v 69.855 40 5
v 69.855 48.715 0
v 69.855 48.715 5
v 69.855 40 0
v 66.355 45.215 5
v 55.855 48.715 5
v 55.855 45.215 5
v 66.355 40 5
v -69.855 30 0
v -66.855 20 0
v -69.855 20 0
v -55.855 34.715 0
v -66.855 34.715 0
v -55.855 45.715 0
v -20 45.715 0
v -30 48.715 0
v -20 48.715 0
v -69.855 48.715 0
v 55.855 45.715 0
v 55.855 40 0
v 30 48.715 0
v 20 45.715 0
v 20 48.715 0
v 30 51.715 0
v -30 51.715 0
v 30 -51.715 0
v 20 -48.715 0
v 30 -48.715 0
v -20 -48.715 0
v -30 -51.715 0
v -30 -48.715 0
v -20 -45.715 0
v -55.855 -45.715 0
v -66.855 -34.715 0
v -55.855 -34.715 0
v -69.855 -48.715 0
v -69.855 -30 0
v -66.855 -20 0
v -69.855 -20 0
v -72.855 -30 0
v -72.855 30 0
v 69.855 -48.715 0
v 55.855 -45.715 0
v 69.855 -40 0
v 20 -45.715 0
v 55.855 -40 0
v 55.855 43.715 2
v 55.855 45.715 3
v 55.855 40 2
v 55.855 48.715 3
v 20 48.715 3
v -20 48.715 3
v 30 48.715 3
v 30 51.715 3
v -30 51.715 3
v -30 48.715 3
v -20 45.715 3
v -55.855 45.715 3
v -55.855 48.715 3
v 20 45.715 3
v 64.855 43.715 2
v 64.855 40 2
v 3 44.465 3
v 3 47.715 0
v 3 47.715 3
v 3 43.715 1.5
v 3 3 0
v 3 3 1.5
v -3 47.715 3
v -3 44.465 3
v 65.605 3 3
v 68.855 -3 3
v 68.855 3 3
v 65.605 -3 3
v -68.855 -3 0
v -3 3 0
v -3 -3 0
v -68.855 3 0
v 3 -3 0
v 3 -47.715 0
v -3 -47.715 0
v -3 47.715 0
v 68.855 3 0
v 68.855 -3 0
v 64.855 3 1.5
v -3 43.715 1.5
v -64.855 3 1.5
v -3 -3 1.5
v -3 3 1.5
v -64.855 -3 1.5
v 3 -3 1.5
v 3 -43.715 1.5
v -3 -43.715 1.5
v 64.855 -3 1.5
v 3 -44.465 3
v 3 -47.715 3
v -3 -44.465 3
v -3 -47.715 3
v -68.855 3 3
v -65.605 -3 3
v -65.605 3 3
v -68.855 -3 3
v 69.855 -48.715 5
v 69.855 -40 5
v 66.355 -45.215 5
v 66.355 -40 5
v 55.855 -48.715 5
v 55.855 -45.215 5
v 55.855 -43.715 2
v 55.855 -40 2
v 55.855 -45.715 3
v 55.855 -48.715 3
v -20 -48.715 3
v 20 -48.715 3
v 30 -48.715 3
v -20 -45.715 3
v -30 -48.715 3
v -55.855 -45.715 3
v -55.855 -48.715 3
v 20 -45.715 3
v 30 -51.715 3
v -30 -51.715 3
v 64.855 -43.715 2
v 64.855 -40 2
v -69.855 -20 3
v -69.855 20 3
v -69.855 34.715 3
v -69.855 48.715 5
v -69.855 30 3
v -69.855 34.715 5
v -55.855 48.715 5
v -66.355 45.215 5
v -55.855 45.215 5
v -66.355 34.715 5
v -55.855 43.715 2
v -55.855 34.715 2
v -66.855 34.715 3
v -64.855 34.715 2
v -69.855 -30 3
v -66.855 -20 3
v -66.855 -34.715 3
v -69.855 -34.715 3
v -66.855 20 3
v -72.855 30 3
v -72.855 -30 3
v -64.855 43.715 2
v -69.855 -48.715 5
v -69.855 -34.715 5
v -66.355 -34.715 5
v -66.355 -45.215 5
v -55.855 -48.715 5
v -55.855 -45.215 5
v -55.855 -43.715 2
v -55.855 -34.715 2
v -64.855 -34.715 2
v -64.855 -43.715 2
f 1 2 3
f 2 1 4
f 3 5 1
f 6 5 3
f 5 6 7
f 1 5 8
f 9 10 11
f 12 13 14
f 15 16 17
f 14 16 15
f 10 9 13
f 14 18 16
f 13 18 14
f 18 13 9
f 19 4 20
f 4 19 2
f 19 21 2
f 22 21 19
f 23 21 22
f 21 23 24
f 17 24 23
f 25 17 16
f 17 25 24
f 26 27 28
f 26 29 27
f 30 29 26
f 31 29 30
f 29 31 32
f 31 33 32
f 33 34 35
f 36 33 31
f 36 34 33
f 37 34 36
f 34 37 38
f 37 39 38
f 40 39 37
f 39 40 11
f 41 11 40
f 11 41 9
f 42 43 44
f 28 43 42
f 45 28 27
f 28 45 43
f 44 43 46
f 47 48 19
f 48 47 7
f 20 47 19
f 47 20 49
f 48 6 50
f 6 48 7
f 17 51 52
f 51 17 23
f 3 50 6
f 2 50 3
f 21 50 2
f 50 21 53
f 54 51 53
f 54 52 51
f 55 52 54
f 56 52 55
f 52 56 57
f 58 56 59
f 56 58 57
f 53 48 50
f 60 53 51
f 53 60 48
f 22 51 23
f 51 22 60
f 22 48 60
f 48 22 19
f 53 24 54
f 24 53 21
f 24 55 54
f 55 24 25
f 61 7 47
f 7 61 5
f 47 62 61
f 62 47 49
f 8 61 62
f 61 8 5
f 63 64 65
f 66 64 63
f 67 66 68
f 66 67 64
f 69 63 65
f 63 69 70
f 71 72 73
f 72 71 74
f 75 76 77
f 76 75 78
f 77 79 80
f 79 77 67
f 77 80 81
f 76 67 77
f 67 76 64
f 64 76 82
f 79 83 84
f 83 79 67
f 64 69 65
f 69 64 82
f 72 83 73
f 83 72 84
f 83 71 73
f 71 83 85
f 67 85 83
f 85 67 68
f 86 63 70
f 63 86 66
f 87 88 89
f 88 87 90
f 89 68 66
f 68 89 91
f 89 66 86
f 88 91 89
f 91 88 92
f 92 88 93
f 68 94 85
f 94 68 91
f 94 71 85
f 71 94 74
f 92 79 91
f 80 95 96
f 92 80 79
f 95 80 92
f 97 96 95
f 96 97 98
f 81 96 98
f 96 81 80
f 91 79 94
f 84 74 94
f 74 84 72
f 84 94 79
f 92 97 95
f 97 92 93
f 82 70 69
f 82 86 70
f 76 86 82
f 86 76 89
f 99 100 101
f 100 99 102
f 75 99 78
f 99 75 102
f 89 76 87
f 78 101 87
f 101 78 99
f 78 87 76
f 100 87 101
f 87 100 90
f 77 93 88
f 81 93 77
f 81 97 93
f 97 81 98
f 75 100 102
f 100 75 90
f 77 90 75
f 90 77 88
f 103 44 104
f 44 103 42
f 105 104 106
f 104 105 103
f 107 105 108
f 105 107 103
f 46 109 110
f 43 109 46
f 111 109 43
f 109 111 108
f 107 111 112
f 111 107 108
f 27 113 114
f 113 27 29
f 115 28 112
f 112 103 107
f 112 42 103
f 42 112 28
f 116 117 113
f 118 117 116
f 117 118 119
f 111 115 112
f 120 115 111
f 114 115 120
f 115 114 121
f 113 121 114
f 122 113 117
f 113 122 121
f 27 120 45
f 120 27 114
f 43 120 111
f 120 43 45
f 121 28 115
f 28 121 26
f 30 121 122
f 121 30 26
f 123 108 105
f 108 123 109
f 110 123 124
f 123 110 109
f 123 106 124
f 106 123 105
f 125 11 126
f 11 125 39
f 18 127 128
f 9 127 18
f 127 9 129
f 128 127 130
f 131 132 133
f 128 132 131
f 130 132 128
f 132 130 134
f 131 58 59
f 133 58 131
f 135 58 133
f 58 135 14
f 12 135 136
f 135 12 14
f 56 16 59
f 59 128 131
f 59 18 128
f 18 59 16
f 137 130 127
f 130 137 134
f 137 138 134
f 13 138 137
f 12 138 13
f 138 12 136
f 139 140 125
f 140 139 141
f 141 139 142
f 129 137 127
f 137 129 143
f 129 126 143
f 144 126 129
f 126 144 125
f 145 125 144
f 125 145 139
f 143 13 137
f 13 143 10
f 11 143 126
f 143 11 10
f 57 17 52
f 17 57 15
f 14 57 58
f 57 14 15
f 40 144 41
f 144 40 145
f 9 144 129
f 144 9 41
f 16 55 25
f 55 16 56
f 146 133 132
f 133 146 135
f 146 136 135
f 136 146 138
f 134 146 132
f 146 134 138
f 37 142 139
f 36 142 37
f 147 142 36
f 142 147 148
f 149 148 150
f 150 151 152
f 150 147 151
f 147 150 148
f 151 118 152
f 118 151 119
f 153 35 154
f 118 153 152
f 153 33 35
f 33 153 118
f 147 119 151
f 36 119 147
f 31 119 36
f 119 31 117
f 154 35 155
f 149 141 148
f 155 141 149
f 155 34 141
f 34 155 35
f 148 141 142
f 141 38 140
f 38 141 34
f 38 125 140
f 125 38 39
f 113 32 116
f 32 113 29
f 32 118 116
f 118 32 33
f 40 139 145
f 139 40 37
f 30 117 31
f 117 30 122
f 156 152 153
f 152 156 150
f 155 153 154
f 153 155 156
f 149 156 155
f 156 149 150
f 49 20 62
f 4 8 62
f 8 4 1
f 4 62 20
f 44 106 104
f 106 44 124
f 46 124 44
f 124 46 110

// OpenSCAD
plate_x = 127.71;
plate_y= 85.43;
plate_tolerance=1;
plate_z=30;
plate_z_tolerance=5;

corner_inset=9;
corner_outset=5;
corner_height=5;
corner_bottom=1.5;

support_thickness_y=3;
support_thickness_z=3;
support_extra_gap = 2;
top_of_neg_plate=10;
plate_top_extra = 5;

holder_extra=4;

holder_depth=2;
middle_size=20;
middle_size_x=20;
middle_overlap=10;
gapwidth = 80;

module neg_plate(){
    hull(){
    cube([plate_x/2+plate_tolerance, plate_y/2+plate_tolerance,0.1]);
    
    translate([0,0,top_of_neg_plate])
    cube([plate_x/2+plate_tolerance+plate_top_extra, plate_y/2+plate_tolerance+plate_top_extra,0.1]);
    }
}





module corner(){
    translate([plate_x/2+plate_tolerance-corner_inset, plate_y/2+plate_tolerance-corner_inset,0])
    cube([corner_inset+corner_outset,corner_inset+corner_outset,corner_height]);
    
}


module rack(){
difference(){
    union(){
    corner();
    translate([plate_x/2+plate_tolerance+support_extra_gap,middle_size,0])
        cube([support_thickness_y,plate_y/2+plate_tolerance-middle_size,support_thickness_z]);
    translate([middle_size,plate_y/2+plate_tolerance+support_extra_gap,0])
        cube([plate_x/2+plate_tolerance-middle_size,support_thickness_y,support_thickness_z]);
        
        translate([plate_x/2+plate_tolerance+support_extra_gap+support_thickness_y,0,0])
        cube([support_thickness_y,middle_overlap+middle_size,support_thickness_z]);
    translate([0,plate_y/2+plate_tolerance+support_extra_gap+support_thickness_y,0])
        cube([middle_overlap+middle_size,support_thickness_y,support_thickness_z]);
    }
    
    translate([0,0,holder_depth]) neg_plate();
};
}



difference(){
quadcopy()  rack();
    translate([0,-gapwidth/2,0])cube([500,gapwidth,30]);
}


module holder(){
difference(){
    union(){
  
    
        cube([support_thickness_y,plate_y/2+plate_tolerance + holder_extra,support_thickness_z]);
    
        cube([plate_x/2+plate_tolerance + holder_extra,support_thickness_y,support_thickness_z]);
    }
    translate([0,0,corner_bottom]) neg_plate();
};
}



module copy_mirror(vec=[0,1,0])
{
    children();
    mirror(vec) children();
}

module quadcopy()
{
    copy_mirror([1,0,0]) copy_mirror() children();
}


quadcopy() color("red") holder();
